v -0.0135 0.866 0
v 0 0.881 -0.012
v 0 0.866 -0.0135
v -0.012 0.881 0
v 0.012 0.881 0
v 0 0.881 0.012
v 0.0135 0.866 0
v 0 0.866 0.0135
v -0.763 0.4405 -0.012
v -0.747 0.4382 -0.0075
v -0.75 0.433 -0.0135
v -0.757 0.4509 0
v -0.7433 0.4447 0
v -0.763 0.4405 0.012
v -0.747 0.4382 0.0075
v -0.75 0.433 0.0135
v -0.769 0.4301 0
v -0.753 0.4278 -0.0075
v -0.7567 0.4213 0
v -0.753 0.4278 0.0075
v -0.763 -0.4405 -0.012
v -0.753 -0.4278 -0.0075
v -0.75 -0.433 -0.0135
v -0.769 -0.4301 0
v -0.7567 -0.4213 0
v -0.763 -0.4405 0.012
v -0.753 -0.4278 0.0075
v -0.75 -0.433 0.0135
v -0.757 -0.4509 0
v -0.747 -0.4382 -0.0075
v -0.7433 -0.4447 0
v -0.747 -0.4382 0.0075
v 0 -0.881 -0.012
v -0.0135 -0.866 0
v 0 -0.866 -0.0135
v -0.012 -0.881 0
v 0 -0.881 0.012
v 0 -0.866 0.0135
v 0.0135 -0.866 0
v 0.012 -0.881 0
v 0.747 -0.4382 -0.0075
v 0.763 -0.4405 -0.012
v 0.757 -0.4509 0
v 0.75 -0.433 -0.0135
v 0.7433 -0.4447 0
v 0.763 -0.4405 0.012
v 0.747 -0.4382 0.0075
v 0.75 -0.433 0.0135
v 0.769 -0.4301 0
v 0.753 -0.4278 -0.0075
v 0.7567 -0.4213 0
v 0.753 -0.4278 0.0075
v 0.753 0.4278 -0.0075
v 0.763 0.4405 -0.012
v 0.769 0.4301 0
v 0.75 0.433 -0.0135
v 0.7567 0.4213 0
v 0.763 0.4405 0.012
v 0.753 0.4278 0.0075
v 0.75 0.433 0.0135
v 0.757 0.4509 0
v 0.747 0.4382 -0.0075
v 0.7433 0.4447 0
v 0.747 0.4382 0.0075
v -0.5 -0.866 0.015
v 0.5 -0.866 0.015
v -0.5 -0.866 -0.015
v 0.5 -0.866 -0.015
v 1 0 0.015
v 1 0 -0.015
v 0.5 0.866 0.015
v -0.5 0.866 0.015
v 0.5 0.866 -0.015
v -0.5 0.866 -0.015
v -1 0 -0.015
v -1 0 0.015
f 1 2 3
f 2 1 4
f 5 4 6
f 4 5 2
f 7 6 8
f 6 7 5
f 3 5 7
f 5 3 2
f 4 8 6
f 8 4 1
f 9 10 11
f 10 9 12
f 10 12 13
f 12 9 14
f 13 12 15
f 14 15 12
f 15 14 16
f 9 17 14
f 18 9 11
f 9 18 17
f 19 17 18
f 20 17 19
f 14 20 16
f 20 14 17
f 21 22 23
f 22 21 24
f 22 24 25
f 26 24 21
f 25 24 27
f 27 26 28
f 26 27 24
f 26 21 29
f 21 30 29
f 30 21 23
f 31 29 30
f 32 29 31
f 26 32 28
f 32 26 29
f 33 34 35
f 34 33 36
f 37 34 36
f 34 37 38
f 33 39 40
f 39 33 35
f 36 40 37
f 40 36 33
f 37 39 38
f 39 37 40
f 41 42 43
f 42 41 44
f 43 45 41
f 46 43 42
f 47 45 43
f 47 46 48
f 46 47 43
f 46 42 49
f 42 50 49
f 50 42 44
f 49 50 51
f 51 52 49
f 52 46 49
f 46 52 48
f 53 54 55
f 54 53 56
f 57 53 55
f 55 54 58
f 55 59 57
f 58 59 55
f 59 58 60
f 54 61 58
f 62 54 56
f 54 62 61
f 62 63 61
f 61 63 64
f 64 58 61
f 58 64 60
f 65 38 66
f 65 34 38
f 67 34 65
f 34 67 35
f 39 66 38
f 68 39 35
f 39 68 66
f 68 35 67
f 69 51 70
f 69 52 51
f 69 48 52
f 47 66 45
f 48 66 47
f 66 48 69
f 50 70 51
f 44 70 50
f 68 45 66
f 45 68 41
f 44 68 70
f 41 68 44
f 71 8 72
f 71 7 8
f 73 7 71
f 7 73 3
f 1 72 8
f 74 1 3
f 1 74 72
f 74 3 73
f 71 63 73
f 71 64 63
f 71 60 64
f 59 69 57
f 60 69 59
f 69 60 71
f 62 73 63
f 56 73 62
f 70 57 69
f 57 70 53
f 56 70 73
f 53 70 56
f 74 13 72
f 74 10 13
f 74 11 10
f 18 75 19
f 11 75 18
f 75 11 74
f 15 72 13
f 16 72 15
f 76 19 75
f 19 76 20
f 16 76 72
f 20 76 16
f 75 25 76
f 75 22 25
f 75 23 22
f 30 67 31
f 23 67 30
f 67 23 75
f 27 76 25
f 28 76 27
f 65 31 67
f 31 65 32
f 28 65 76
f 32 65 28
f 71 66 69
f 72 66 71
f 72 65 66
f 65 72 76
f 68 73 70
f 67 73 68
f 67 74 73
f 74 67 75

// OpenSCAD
module hexagon_tile(R, h_center_grip=0,R_grips_center=0){

H = 0.03;
R_grips = H/2;
h_grips = 0.03;

//translate([0,sin(60)*R+h_grips/2,0])    
// sin(60)*R+0.05/2 em y
union(){
//difference(){    
cylinder(h = H, r1 = R, r2 = R, center = true, $fn=6);
//translate([0,0,-H/2])
//cylinder(h = H, r1 = R-0.05, r2 = R-0.05, center = true, $fn=6);
//}
for (i = [1:6]){
    rotate([0,0,(i-1)*60])
    translate([0,cos(30)*R,0])
    rotate([90,0,0])
    cylinder(h = h_grips, r1 = 0.8*R_grips, r2 = R_grips, center = true, $fn=4); 
}
translate([0,0,-(h_center_grip+H)/2])
cylinder(h = h_center_grip, r1 = R_grips_center, r2 = R_grips_center, center = true, $fn=6); 
}
}

hexagon_tile(R=1);
